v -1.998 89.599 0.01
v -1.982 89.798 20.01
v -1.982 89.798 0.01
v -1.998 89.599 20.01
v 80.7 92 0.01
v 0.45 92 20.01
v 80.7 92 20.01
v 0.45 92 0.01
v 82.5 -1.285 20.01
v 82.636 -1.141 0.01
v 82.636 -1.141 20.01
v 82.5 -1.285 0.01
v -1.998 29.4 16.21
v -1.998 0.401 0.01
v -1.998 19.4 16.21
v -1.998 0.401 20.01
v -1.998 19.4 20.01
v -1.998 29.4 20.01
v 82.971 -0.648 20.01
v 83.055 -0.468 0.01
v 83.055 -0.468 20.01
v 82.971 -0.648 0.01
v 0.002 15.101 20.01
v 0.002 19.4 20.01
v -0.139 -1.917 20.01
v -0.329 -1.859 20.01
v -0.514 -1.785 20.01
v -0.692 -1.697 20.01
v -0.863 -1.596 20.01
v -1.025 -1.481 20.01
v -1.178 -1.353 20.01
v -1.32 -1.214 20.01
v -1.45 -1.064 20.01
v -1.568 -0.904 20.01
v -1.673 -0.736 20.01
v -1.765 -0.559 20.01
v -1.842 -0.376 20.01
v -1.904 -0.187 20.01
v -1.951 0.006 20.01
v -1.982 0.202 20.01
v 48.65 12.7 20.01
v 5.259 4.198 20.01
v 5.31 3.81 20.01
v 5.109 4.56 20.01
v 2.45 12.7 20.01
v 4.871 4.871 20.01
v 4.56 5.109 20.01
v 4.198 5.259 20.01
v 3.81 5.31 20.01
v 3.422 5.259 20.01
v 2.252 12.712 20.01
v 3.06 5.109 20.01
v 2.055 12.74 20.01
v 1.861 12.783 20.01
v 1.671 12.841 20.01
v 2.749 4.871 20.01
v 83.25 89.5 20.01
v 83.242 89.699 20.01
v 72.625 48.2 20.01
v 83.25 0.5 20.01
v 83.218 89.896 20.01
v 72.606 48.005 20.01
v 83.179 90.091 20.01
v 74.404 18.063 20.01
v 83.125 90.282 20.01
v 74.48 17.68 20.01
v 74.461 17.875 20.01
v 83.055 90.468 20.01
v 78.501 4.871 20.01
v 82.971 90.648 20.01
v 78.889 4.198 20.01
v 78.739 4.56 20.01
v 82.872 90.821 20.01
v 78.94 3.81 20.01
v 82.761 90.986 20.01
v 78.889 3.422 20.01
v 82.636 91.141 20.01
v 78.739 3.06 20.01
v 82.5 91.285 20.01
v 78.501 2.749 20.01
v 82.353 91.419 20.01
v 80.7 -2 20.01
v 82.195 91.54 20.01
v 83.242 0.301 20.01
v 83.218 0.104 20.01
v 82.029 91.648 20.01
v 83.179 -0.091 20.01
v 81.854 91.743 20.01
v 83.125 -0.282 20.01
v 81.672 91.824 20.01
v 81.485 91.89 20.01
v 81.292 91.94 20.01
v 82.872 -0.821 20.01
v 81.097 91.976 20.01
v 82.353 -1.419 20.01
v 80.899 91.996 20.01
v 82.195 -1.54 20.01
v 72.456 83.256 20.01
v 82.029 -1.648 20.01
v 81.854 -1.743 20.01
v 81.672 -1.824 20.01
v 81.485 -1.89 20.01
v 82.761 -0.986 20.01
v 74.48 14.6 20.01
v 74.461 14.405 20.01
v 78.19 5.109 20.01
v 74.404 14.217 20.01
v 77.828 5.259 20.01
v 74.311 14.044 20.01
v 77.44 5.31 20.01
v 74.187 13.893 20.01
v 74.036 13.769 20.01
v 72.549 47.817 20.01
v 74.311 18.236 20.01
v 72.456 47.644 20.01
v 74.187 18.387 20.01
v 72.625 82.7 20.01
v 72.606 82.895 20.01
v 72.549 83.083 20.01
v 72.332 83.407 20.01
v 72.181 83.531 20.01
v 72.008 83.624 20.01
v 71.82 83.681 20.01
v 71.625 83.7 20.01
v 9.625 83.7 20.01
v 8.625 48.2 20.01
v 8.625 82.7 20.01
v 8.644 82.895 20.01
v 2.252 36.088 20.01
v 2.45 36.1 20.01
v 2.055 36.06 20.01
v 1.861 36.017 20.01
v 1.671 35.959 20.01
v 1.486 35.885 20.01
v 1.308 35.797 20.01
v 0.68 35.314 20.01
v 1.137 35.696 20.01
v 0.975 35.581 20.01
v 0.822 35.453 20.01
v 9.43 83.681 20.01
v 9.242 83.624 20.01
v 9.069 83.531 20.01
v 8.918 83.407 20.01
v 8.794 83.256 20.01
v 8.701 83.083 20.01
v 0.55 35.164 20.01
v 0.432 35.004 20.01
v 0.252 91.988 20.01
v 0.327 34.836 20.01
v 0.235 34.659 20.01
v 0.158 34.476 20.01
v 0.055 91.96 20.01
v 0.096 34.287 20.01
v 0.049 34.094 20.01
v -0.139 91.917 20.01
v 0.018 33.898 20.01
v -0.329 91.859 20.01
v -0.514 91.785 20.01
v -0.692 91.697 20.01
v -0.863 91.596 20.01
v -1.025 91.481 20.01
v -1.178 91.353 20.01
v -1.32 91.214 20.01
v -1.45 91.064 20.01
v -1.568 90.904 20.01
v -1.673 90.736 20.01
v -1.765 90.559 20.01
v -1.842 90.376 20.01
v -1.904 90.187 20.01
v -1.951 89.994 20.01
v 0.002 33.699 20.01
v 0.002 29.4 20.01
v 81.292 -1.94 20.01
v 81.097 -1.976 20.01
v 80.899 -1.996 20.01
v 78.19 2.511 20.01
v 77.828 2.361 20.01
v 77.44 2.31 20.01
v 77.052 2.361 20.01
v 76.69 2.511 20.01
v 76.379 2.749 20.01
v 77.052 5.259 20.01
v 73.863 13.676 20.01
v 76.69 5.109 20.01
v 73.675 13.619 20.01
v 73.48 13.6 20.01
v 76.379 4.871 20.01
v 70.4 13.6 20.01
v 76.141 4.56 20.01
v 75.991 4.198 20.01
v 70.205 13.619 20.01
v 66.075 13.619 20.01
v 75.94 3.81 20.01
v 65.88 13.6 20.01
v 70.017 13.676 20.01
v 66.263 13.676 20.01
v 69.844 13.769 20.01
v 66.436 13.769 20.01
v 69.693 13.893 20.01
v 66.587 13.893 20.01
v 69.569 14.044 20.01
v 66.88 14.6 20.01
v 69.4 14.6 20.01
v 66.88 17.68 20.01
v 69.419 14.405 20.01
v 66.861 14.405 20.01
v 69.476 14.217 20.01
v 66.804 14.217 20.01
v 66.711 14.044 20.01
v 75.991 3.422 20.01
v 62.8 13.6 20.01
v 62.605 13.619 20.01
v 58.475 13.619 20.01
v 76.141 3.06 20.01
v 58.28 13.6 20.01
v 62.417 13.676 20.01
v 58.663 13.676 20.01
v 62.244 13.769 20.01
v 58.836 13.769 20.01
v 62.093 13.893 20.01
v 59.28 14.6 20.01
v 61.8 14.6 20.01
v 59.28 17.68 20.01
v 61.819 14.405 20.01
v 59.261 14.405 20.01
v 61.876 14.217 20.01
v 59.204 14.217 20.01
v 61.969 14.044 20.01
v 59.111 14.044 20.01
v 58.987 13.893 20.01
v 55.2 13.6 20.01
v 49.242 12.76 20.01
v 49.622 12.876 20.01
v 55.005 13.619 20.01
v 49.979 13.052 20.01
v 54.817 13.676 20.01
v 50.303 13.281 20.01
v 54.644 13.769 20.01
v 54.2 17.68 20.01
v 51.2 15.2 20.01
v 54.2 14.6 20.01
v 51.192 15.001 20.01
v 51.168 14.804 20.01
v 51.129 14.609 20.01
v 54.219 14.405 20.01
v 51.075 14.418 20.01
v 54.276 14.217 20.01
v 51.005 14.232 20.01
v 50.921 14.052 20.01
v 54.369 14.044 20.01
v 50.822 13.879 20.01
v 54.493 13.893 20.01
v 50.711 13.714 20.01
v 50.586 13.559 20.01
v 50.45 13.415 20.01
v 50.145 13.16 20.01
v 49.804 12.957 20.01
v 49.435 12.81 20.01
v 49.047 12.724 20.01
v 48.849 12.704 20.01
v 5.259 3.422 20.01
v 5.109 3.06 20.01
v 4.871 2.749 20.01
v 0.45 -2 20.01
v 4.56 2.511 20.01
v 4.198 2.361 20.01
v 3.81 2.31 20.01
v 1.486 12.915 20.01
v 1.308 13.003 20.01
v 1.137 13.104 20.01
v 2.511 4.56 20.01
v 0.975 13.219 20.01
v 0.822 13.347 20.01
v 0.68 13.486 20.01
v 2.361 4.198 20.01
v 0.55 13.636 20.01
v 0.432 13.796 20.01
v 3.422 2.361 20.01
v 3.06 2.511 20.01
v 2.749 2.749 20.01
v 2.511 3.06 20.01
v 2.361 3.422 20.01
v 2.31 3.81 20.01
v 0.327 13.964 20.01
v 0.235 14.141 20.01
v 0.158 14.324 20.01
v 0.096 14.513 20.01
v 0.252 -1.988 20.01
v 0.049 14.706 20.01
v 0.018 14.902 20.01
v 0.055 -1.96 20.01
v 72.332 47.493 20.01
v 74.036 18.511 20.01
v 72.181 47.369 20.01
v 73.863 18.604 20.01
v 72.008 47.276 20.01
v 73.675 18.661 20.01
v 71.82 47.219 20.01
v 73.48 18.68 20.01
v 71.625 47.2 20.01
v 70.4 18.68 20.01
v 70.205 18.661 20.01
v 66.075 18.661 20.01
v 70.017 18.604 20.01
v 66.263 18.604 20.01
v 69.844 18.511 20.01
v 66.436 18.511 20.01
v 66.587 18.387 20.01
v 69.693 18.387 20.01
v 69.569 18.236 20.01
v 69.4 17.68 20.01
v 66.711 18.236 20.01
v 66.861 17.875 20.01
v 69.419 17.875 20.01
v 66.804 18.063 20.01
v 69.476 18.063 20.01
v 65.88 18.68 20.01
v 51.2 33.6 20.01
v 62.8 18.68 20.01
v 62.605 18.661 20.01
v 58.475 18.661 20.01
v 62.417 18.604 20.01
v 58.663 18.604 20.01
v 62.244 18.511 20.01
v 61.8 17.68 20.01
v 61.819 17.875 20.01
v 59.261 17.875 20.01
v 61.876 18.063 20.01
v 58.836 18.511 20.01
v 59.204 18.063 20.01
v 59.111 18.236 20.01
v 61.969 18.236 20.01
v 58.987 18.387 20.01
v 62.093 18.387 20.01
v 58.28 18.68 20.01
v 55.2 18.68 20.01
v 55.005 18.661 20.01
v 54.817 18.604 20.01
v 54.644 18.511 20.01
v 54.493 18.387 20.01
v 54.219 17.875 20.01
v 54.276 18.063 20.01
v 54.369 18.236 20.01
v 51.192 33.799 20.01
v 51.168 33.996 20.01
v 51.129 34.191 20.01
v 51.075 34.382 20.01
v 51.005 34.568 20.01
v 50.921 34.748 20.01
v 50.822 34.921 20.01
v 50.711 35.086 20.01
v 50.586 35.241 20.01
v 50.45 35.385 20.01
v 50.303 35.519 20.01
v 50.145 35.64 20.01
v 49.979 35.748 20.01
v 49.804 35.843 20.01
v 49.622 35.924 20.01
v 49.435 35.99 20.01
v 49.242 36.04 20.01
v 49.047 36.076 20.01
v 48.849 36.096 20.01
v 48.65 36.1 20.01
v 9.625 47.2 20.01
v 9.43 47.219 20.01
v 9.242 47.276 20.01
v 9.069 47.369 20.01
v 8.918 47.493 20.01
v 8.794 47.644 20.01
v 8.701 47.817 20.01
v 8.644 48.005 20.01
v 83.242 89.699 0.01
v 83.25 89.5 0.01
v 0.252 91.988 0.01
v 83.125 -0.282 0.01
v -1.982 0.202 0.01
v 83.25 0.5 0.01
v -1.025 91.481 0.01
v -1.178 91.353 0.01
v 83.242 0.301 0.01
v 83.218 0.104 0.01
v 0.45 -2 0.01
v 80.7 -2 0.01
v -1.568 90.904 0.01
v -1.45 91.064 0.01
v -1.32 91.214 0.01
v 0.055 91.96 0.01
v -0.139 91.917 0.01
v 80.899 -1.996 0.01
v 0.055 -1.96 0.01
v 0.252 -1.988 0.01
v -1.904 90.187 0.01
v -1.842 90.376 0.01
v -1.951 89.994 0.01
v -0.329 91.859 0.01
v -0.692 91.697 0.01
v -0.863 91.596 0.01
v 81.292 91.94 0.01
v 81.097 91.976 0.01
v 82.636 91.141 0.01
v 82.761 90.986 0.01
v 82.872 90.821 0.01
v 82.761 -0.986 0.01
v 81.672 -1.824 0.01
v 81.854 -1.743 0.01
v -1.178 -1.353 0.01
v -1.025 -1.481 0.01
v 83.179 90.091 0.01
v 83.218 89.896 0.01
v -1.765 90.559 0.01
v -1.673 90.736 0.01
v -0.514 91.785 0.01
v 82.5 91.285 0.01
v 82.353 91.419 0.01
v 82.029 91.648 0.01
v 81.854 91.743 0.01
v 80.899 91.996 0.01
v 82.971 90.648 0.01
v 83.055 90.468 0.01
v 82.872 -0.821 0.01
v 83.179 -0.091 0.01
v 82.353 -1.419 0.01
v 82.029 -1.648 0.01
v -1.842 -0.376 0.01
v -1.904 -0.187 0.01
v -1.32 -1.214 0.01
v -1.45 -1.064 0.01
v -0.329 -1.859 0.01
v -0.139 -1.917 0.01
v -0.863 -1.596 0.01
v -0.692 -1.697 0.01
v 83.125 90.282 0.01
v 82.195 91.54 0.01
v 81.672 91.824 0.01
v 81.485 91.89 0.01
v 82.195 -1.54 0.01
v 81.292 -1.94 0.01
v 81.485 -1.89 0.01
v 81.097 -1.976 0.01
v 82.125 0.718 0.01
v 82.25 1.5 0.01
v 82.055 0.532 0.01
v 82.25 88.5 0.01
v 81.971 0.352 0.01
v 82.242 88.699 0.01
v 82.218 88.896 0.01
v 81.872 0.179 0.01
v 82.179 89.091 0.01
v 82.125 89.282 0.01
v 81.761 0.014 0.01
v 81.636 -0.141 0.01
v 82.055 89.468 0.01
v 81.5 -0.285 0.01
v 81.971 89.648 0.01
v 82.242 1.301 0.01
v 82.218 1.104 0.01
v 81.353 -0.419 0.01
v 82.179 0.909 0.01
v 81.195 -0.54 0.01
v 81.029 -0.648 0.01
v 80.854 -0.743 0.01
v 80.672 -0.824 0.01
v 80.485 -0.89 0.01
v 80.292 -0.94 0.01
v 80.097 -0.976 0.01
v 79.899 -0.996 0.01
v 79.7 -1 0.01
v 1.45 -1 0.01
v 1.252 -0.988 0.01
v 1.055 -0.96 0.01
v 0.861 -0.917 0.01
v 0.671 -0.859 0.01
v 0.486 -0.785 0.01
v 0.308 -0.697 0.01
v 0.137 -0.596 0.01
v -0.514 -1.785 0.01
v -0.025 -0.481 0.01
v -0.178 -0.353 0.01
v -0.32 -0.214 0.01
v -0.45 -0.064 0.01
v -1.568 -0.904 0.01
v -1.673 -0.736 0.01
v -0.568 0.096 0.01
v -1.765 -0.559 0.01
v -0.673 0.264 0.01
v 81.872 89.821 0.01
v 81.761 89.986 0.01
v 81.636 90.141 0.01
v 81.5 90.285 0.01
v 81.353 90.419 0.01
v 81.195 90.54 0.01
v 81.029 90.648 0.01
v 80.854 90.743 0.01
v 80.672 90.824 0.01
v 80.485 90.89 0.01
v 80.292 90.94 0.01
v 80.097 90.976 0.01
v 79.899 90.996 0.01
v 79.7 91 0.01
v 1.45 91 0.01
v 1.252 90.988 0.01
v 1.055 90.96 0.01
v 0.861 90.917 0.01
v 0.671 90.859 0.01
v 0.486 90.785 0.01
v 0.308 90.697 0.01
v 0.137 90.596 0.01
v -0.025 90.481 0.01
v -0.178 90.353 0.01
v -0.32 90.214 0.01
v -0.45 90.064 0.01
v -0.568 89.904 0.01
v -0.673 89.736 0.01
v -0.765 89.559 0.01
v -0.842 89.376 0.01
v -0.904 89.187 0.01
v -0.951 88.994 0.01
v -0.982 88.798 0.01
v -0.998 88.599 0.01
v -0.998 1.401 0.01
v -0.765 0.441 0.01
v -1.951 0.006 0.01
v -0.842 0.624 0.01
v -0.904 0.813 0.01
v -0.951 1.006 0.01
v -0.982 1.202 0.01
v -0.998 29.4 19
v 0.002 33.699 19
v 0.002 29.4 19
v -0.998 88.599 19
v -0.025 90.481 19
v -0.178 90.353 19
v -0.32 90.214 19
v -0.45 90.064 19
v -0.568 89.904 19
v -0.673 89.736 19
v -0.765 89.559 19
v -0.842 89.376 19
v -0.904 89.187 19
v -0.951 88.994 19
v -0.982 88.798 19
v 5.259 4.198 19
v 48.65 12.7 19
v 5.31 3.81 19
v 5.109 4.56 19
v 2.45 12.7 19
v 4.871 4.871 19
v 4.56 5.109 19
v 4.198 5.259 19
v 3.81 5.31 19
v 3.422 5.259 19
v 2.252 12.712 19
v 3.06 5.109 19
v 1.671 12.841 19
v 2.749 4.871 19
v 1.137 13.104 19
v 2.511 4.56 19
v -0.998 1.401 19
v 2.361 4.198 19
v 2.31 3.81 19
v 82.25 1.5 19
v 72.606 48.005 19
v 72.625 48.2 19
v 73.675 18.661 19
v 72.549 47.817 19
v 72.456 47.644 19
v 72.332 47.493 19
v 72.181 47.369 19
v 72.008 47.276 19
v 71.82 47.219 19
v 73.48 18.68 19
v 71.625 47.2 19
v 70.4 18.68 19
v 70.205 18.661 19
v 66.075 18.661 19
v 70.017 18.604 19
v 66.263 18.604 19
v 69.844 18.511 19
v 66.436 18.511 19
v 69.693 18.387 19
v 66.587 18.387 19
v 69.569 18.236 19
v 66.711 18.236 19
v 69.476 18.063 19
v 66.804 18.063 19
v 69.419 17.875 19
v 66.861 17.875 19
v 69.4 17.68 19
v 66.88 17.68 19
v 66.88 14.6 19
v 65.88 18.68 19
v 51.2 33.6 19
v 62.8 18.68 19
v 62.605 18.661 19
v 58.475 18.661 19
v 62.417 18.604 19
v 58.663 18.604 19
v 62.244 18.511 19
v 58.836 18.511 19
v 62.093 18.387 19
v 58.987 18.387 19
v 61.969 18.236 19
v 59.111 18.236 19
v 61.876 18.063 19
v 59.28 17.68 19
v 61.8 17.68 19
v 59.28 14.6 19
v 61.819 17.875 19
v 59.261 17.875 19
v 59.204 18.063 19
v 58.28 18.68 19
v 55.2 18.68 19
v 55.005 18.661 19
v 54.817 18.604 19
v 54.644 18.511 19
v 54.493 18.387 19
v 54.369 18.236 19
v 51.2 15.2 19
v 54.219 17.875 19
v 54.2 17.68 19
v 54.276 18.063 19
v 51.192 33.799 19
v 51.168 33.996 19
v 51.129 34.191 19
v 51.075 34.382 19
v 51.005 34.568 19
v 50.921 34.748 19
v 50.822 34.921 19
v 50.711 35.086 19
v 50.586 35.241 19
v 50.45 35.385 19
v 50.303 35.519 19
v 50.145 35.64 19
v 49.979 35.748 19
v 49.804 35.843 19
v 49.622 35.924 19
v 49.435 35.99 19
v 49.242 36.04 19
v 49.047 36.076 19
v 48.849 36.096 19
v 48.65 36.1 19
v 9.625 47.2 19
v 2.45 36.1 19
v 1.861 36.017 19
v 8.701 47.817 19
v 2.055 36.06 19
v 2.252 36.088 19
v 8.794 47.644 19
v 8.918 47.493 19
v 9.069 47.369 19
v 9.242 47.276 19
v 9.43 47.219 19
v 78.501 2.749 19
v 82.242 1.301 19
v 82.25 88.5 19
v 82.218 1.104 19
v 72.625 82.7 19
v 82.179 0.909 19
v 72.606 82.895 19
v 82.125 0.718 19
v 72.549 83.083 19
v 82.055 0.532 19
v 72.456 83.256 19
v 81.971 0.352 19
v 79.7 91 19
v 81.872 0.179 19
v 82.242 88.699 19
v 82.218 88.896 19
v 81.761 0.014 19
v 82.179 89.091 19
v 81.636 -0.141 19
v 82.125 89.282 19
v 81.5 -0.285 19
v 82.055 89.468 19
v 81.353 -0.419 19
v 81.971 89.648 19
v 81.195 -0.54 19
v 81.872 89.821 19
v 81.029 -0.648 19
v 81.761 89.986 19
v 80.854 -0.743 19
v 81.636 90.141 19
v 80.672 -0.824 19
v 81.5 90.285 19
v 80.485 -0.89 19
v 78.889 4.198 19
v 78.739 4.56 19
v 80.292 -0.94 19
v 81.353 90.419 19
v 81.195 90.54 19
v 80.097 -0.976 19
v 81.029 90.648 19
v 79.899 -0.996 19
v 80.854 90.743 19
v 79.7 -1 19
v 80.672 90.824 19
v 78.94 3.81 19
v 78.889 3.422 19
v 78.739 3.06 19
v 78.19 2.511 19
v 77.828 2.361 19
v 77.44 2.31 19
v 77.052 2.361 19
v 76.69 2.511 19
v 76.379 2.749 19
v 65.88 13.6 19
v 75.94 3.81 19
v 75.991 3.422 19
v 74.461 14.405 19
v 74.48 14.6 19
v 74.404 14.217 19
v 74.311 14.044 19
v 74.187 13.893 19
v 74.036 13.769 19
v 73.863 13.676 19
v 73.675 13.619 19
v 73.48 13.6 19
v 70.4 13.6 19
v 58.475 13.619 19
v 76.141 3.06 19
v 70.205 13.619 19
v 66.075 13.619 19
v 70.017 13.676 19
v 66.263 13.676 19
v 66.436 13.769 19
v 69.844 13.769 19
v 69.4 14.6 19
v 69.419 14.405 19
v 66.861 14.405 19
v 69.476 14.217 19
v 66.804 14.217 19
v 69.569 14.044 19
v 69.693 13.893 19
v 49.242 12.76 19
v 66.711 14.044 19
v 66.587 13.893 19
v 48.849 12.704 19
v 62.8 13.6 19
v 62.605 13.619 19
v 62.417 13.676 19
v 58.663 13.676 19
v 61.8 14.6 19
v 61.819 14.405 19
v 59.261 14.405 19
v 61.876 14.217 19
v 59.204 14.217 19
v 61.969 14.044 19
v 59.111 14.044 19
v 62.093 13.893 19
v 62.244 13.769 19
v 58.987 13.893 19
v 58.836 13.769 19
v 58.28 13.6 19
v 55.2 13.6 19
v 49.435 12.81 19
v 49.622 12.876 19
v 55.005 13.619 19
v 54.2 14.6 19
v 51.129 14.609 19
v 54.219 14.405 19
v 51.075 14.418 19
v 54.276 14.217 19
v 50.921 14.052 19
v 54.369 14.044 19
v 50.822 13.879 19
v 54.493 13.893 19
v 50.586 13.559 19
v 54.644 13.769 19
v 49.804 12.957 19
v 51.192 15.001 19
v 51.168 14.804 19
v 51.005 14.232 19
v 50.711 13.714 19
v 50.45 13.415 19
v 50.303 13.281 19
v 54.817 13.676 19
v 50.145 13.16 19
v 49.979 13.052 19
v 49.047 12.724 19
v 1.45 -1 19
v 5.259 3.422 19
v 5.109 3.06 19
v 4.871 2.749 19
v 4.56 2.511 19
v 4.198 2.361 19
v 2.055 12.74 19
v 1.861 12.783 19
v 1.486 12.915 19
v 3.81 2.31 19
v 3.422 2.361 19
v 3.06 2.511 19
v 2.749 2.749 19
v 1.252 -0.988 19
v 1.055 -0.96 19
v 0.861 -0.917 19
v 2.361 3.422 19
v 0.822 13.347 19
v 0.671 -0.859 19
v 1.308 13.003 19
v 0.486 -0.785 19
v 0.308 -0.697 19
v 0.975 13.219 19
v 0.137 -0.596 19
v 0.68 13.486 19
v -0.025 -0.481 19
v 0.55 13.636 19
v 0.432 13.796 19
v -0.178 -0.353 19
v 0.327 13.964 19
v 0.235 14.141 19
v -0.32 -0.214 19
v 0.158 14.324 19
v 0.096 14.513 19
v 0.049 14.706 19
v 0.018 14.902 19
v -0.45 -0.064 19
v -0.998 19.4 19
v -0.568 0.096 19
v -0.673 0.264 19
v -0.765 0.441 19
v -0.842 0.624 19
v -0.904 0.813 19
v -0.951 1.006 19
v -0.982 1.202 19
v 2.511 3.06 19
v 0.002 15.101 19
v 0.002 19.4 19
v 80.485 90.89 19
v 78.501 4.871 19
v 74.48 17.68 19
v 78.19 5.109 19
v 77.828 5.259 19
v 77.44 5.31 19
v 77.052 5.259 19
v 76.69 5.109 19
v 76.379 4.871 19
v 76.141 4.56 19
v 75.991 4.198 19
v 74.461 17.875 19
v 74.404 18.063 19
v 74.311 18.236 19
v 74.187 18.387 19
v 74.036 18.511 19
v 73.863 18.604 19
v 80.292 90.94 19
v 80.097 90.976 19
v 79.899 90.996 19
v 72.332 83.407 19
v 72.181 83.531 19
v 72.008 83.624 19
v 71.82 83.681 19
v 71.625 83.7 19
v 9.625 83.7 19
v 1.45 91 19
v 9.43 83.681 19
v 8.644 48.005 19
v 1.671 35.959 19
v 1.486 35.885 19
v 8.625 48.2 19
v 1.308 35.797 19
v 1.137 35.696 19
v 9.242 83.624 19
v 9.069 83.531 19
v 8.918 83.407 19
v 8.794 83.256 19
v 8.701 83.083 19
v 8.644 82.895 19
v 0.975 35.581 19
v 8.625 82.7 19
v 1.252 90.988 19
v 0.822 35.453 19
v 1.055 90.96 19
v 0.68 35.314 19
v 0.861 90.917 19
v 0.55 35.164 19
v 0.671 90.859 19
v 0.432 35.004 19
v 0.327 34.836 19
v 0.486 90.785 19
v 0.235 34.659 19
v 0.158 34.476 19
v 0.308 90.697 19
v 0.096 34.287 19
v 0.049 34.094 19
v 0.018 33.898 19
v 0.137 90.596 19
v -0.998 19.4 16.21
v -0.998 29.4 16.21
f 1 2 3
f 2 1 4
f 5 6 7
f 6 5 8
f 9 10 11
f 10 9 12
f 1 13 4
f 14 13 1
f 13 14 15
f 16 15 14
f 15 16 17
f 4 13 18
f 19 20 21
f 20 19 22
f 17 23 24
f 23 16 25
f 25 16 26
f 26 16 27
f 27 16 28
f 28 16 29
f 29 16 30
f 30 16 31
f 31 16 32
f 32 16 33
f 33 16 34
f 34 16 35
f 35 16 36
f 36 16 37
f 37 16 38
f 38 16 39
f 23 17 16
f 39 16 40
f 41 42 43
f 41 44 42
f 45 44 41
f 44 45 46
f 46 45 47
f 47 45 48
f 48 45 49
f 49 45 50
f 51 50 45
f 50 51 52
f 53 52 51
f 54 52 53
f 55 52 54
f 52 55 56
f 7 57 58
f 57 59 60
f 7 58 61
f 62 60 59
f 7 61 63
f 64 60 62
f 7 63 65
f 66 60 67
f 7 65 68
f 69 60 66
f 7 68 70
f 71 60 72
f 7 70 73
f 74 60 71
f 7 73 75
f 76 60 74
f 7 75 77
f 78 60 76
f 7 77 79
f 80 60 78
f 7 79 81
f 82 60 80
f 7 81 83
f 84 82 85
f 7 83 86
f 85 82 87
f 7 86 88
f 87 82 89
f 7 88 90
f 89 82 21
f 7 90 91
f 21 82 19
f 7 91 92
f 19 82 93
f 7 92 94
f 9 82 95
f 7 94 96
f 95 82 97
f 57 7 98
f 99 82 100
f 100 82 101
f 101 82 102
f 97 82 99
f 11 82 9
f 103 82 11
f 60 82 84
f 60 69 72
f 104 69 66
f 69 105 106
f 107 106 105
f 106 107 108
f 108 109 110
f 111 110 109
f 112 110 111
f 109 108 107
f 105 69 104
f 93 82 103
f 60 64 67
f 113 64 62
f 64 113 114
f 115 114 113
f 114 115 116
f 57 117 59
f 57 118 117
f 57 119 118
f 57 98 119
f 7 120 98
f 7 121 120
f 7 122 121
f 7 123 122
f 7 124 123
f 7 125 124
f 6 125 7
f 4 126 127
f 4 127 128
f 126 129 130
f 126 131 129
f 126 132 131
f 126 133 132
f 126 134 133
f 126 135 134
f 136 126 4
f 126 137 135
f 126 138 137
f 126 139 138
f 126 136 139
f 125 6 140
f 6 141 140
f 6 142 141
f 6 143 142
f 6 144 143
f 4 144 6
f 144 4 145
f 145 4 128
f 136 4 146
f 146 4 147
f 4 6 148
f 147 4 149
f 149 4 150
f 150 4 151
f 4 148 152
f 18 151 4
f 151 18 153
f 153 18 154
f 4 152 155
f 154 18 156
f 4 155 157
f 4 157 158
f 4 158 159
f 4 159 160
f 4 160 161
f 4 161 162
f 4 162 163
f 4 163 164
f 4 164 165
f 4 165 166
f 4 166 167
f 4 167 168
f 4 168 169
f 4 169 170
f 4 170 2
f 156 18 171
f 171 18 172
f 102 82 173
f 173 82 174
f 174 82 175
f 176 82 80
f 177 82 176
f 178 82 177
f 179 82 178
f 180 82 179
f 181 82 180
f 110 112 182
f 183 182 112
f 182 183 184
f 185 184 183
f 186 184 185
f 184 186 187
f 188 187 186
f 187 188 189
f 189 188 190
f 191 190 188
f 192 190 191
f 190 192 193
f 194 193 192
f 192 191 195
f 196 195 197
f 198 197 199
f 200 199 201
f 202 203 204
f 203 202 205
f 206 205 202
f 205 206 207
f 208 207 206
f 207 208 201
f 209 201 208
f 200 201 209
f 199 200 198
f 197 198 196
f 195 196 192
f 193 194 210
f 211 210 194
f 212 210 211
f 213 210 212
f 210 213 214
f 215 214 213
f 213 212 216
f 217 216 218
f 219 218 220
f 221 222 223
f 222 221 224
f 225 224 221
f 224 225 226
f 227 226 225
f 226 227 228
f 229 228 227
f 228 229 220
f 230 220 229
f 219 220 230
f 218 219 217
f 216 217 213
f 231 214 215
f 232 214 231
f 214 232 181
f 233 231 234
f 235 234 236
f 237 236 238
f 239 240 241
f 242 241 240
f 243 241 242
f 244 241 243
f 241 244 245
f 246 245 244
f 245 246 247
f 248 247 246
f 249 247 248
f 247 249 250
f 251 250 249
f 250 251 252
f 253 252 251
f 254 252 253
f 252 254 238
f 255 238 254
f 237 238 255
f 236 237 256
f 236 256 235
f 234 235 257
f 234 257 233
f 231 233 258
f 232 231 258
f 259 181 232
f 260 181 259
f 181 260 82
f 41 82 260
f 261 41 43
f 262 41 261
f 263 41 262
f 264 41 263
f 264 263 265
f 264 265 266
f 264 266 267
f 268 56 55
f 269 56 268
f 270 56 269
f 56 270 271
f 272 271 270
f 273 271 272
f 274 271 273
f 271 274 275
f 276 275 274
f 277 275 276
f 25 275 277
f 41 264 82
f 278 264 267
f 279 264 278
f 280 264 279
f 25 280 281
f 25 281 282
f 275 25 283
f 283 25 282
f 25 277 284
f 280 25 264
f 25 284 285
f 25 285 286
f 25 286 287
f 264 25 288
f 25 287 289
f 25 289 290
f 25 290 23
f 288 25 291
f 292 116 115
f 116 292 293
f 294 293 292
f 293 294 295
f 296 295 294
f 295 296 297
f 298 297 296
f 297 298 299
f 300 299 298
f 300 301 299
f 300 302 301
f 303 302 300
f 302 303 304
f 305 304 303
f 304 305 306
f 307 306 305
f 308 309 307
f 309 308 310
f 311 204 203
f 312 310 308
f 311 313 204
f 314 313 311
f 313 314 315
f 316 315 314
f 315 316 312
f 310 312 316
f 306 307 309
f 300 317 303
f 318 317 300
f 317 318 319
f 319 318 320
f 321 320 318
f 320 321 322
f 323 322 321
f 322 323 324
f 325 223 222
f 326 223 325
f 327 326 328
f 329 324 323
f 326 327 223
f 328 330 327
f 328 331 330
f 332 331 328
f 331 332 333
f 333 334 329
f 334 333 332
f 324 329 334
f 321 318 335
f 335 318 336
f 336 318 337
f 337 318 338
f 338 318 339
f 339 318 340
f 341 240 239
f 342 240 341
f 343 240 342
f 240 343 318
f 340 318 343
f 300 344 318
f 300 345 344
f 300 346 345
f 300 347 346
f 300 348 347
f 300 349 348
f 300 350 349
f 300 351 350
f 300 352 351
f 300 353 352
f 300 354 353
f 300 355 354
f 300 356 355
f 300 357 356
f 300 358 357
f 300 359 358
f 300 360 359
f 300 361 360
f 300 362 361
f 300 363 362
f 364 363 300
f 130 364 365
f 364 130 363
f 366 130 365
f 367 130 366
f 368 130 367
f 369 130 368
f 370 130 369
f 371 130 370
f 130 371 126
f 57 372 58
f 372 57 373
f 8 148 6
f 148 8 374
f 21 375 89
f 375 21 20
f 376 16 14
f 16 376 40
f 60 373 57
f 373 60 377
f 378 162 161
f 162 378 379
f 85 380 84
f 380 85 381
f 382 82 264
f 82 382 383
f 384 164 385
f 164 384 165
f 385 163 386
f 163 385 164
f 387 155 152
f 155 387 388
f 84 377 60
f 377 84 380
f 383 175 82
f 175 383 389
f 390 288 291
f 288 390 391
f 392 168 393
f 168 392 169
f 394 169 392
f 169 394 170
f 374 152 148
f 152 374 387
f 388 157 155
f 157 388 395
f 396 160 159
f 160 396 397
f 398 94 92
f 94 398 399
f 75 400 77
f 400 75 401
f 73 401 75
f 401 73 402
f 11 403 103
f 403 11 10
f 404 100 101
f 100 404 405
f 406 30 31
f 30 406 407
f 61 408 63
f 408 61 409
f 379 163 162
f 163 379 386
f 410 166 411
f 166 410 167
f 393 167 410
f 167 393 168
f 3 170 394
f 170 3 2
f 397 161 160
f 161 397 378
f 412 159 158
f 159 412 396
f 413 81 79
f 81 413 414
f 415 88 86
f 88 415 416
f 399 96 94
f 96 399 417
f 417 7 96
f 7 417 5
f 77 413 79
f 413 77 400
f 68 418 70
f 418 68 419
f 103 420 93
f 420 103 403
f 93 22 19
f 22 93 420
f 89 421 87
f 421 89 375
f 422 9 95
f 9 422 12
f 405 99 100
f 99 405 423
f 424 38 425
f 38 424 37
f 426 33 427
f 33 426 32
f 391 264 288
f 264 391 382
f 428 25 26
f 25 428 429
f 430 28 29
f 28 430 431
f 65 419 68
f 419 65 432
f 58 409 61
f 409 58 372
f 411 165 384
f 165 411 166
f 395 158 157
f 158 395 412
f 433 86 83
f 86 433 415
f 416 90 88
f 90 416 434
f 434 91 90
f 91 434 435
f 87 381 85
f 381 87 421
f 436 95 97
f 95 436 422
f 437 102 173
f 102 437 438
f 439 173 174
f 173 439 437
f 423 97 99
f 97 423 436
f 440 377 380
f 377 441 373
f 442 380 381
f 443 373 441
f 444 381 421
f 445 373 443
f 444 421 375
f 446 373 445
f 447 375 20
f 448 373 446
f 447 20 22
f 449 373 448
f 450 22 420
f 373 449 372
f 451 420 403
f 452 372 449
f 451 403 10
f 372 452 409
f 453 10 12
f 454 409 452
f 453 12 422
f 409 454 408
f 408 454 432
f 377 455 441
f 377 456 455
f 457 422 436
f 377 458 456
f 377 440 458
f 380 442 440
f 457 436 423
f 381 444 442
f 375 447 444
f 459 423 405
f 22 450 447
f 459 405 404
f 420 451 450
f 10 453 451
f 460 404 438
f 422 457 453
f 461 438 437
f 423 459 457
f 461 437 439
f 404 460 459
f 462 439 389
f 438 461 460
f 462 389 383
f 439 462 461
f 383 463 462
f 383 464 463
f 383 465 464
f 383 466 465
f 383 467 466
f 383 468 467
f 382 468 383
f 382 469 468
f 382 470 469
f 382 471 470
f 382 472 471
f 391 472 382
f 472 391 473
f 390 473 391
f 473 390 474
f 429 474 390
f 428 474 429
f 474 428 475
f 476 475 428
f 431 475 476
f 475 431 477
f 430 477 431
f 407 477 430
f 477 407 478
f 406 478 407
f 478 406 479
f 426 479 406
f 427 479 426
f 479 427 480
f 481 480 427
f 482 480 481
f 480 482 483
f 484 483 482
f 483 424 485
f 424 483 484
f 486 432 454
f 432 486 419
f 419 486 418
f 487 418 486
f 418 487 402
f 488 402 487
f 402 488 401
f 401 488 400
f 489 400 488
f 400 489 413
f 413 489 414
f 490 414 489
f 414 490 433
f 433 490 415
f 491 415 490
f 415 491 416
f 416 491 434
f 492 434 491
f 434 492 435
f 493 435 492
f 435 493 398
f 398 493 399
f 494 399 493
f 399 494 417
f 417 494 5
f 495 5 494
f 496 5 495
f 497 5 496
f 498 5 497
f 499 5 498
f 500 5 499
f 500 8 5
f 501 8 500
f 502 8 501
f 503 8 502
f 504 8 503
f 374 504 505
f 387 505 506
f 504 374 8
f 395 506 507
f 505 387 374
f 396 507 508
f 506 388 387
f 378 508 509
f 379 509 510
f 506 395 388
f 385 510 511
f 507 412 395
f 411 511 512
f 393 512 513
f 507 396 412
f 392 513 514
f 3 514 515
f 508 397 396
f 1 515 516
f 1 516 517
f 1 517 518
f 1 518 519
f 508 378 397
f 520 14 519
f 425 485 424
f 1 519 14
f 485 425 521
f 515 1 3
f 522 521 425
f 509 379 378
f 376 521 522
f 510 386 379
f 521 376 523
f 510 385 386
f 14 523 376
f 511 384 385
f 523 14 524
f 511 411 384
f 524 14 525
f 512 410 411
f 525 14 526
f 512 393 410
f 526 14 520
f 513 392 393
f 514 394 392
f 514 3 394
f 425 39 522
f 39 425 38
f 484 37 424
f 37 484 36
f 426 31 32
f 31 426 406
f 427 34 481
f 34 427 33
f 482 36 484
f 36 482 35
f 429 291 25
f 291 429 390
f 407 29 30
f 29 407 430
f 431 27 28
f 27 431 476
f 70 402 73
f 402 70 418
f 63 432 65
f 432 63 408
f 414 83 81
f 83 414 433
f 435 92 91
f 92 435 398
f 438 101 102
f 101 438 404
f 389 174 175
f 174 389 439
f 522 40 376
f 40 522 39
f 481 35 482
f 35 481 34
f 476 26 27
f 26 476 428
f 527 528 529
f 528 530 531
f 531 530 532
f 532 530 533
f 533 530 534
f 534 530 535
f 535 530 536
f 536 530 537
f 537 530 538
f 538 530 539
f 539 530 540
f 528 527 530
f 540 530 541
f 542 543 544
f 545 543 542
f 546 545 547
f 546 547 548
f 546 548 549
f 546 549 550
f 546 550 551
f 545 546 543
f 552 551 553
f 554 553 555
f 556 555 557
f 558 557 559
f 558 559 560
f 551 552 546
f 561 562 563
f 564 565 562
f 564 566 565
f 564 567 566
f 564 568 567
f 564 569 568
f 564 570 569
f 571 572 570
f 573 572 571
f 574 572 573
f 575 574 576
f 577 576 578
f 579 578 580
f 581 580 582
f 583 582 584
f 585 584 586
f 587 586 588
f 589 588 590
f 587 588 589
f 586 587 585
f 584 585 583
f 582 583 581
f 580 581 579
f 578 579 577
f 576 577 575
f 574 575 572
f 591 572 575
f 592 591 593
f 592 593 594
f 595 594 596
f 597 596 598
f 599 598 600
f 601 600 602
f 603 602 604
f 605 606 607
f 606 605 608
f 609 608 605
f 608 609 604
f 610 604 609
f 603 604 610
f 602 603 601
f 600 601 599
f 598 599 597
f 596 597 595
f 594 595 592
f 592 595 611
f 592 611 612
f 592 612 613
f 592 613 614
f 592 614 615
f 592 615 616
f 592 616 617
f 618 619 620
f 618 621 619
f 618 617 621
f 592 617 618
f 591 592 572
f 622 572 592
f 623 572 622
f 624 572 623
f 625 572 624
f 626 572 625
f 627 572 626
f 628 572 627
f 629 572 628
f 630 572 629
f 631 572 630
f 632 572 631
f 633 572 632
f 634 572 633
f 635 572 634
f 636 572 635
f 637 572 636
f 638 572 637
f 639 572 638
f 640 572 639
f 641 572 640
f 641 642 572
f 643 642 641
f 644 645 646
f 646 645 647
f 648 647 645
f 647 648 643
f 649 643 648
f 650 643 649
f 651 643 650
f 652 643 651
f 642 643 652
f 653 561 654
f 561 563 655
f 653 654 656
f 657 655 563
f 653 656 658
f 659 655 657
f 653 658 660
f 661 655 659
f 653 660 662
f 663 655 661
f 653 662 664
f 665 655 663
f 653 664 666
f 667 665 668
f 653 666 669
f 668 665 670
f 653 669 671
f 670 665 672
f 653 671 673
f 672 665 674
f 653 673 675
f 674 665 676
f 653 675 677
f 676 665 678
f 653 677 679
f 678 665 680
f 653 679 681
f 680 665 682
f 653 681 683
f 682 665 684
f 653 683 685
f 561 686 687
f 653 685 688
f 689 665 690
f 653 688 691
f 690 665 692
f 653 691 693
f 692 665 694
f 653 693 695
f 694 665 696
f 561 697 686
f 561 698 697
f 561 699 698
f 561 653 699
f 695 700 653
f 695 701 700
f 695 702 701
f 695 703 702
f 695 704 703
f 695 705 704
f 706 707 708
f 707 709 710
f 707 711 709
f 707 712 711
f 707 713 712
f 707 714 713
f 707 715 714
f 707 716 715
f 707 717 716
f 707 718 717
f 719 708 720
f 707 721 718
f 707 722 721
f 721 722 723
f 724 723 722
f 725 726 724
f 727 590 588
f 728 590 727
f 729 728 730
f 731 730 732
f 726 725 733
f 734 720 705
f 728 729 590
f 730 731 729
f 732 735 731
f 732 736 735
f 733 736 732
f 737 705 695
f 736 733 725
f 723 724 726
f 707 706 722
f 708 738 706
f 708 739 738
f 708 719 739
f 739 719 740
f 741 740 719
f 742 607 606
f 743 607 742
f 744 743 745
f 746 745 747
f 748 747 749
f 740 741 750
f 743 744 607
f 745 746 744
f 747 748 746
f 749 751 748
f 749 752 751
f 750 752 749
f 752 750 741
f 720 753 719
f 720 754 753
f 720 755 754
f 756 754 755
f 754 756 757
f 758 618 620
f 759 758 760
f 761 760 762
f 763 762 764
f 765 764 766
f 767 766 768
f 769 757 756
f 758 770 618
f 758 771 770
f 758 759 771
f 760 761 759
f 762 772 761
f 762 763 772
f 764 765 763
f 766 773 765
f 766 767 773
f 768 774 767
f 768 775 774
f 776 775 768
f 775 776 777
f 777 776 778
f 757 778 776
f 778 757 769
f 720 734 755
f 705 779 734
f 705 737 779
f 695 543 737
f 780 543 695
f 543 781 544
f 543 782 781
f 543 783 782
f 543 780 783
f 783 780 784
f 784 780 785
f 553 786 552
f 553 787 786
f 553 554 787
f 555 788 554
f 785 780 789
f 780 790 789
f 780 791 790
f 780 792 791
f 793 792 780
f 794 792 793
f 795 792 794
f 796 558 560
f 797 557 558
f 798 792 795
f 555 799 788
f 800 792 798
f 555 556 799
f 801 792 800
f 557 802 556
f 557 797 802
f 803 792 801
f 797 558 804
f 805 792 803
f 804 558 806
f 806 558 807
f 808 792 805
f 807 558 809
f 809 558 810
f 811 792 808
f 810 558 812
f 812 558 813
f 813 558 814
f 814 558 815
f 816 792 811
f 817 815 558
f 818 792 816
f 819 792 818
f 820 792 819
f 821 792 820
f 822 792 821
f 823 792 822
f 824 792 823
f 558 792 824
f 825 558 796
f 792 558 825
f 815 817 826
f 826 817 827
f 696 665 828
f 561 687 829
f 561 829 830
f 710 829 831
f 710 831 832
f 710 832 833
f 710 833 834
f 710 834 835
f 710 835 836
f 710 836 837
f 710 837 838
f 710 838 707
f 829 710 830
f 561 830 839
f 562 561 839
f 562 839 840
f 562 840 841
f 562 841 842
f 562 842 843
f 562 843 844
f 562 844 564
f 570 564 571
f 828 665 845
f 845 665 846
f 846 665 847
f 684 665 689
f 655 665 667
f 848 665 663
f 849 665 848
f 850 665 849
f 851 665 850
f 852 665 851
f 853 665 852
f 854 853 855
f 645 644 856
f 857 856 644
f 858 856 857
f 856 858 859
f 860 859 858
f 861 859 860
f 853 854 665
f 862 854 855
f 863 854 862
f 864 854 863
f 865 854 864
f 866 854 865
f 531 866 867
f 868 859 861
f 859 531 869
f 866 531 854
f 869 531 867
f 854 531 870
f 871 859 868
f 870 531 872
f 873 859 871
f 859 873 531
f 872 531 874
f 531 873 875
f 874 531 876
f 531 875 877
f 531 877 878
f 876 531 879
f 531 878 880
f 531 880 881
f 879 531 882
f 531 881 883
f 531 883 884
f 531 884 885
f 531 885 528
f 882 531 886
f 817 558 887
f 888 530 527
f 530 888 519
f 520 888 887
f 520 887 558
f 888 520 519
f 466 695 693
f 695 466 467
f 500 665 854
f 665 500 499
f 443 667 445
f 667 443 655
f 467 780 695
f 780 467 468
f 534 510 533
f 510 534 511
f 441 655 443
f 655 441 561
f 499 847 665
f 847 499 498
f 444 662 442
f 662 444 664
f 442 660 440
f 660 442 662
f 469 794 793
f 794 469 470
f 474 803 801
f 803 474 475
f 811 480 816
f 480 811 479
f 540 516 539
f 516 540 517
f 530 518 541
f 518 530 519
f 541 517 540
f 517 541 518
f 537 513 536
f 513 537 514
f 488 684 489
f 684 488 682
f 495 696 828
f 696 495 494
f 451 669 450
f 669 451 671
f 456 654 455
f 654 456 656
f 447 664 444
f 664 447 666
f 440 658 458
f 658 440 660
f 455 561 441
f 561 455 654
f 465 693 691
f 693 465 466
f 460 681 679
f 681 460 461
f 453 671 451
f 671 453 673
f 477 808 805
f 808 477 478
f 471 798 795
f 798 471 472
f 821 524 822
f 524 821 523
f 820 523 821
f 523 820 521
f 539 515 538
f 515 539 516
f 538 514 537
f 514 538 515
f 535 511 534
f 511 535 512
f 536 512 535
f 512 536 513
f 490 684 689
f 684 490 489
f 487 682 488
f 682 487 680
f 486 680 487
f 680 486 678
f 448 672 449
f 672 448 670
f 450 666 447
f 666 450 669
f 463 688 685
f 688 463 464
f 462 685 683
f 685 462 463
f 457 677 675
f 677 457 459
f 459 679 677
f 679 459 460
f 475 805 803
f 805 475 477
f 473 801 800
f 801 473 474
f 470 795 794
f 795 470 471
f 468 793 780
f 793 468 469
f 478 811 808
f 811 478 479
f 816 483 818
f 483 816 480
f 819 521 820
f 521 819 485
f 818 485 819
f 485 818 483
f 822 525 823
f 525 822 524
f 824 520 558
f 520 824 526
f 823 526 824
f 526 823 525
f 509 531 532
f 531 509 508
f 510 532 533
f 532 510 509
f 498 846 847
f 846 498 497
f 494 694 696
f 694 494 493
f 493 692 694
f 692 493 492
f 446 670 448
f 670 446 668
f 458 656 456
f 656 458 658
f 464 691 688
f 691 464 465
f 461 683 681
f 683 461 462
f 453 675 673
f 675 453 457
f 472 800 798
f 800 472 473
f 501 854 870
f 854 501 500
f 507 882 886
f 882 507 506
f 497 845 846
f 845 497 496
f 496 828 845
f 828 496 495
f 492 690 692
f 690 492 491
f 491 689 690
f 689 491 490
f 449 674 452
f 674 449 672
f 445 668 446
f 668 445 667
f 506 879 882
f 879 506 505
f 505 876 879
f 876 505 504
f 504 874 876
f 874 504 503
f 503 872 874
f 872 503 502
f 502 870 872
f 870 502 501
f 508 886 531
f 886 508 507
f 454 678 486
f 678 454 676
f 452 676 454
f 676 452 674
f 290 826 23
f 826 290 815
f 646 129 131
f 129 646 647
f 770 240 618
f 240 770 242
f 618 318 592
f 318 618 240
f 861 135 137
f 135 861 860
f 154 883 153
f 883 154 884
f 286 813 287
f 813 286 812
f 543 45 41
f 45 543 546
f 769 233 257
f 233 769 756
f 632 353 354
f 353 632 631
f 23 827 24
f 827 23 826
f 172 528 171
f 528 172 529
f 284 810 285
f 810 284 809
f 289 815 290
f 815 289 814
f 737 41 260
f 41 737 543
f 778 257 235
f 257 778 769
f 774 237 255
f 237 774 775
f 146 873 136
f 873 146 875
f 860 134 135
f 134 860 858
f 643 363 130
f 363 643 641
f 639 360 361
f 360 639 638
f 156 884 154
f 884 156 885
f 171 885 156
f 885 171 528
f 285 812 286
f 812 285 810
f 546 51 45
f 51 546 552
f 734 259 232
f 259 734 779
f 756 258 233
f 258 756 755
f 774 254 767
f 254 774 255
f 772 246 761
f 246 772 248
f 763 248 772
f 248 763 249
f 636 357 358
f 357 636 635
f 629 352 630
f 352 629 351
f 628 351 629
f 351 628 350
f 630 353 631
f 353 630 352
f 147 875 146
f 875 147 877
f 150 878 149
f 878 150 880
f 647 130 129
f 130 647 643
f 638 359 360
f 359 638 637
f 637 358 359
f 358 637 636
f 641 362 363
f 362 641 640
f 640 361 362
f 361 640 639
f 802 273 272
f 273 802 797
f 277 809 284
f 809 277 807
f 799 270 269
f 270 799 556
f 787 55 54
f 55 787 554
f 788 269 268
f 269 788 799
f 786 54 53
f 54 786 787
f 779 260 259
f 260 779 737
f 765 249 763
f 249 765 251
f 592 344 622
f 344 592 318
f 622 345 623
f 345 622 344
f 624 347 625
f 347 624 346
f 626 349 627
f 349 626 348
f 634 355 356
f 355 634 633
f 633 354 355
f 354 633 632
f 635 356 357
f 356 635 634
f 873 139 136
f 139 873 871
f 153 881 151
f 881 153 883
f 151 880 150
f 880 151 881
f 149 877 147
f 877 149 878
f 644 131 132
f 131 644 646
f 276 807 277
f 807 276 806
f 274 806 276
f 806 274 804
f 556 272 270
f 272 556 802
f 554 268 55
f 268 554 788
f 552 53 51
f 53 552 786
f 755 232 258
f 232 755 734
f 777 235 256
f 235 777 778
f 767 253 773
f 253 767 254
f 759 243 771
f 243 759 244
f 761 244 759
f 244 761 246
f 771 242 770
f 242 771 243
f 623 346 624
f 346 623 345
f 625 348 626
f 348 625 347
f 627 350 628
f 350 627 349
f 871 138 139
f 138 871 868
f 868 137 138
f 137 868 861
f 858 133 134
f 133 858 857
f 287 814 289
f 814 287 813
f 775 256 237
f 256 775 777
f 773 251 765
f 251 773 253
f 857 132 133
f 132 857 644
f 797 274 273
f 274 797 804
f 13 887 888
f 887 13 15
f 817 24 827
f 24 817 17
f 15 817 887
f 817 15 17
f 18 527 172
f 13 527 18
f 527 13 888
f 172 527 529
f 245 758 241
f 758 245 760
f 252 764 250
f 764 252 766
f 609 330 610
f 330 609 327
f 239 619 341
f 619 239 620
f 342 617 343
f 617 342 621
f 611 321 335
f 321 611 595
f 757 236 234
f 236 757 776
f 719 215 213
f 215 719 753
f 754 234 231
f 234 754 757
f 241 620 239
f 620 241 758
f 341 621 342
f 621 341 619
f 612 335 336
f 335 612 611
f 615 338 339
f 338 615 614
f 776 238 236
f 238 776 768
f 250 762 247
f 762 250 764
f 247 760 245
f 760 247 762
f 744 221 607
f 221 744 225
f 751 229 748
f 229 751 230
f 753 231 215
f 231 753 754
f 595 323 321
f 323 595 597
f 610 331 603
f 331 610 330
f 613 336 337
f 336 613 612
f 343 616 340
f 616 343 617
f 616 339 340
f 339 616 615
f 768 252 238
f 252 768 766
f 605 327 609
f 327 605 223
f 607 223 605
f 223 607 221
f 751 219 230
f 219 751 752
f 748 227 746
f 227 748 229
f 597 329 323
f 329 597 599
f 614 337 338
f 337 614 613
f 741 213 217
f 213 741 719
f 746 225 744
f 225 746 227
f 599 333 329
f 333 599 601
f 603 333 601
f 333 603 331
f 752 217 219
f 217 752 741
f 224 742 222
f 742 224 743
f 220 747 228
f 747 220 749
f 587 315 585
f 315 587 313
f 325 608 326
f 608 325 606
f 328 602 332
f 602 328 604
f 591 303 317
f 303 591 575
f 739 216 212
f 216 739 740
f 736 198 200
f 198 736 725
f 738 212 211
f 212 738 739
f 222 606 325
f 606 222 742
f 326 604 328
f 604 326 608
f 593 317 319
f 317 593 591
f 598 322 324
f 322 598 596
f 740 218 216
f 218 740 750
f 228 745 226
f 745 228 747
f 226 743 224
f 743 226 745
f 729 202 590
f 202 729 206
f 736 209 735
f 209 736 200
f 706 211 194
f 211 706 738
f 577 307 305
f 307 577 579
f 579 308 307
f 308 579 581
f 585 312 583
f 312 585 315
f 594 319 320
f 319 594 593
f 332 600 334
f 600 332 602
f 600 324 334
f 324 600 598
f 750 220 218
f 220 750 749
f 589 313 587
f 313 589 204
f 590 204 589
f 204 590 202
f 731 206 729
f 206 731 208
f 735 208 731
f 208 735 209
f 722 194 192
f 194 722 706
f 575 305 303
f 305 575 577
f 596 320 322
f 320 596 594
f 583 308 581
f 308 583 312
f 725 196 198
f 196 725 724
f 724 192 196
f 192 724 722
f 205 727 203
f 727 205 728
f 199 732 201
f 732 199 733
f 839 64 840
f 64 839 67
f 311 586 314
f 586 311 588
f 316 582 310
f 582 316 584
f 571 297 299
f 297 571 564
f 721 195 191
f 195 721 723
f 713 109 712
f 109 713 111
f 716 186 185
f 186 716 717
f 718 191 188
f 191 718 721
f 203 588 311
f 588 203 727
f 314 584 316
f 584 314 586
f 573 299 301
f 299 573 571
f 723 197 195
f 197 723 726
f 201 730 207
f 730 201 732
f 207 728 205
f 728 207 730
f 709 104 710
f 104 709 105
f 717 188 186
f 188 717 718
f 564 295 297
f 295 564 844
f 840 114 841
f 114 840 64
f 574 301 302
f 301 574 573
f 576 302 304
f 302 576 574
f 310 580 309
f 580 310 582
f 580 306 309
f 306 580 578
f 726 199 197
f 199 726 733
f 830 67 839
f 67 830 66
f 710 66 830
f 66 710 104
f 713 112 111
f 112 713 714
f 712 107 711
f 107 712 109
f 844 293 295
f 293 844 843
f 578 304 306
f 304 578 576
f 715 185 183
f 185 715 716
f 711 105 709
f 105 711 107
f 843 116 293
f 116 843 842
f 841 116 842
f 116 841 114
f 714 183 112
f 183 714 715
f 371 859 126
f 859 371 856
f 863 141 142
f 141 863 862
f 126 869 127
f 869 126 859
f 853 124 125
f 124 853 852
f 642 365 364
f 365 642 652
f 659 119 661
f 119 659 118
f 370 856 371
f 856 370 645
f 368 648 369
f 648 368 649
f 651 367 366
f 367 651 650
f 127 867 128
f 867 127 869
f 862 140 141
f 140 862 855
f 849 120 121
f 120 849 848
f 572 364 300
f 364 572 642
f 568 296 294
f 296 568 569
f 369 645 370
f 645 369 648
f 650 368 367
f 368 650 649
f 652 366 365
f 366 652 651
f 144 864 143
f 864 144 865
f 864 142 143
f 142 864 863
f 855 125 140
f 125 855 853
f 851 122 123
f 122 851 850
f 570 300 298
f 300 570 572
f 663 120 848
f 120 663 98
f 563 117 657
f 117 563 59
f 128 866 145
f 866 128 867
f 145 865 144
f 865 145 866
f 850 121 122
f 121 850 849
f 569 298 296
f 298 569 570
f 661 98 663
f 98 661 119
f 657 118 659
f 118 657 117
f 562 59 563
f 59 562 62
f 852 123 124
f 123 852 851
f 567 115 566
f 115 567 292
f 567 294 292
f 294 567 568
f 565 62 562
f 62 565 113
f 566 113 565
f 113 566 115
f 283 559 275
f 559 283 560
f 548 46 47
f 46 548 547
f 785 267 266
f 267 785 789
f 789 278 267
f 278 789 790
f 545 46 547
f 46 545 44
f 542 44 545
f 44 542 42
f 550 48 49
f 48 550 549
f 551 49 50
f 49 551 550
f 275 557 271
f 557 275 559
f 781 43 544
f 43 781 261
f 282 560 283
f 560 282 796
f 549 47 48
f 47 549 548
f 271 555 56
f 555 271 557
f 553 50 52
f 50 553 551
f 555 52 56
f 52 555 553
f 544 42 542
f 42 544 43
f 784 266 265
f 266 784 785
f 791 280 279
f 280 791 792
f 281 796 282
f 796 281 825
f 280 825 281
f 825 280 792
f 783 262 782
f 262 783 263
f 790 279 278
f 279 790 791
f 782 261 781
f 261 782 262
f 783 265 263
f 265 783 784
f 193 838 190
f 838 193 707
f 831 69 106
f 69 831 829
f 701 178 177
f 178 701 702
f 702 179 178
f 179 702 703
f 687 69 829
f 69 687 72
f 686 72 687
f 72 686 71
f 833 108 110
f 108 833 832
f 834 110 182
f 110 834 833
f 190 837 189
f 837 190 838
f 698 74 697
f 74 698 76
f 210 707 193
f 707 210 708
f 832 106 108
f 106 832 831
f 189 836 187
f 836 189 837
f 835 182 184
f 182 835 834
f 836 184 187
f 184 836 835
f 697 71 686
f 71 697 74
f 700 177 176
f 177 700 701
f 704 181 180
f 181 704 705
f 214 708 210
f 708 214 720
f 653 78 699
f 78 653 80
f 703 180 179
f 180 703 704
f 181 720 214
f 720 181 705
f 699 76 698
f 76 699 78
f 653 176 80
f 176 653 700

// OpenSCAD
// file: MODULES/roundedcube.scad
// Original source: https://danielupshaw.com/openscad-rounded-corners/

// use this for working
$fs = 0.2;
// use the for rendering
// $fs = 0.02;

module roundedcube(size = [1, 1, 1], center = false, radius = 0.5, apply_to = "all") {
	// If single value, convert to [x, y, z] vector
	size = (size[0] == undef) ? [size, size, size] : size;

	translate_min = radius;
	translate_xmax = size[0] - radius;
	translate_ymax = size[1] - radius;
	translate_zmax = size[2] - radius;

	diameter = radius * 2;

	module build_point(type = "sphere", rotate = [0, 0, 0]) {
		if (type == "sphere") {
			sphere(r = radius);
		} else if (type == "cylinder") {
			rotate(a = rotate)
			cylinder(h = diameter, r = radius, center = true);
		}
	}

	obj_translate = (center == false) ?
		[0, 0, 0] : [
			-(size[0] / 2),
			-(size[1] / 2),
			-(size[2] / 2)
		];

	translate(v = obj_translate) {
		hull() {
			for (translate_x = [translate_min, translate_xmax]) {
				x_at = (translate_x == translate_min) ? "min" : "max";
				for (translate_y = [translate_min, translate_ymax]) {
					y_at = (translate_y == translate_min) ? "min" : "max";
					for (translate_z = [translate_min, translate_zmax]) {
						z_at = (translate_z == translate_min) ? "min" : "max";

						translate(v = [translate_x, translate_y, translate_z])
						if (
							(apply_to == "all") ||
							(apply_to == "xmin" && x_at == "min") || (apply_to == "xmax" && x_at == "max") ||
							(apply_to == "ymin" && y_at == "min") || (apply_to == "ymax" && y_at == "max") ||
							(apply_to == "zmin" && z_at == "min") || (apply_to == "zmax" && z_at == "max")
						) {
							build_point("sphere");
						} else {
							rotate = 
								(apply_to == "xmin" || apply_to == "xmax" || apply_to == "x") ? [0, 90, 0] : (
								(apply_to == "ymin" || apply_to == "ymax" || apply_to == "y") ? [90, 90, 0] :
								[0, 0, 0]
							);
							build_point("cylinder", rotate);
						}
					}
				}
			}
		}
	}
}

module shull_cube(size = [1, 1, 1], center = false, radius = 0, apply_to = "all") {
    if (radius == 0) {
        cube(size, center);
    } else {
        roundedcube(size, center, radius, apply_to);
    }
}
// main file
// Electronics Enclosure OpenSCAD Template
//  By Carsten Thue-Bludworth

use <MODULES/roundedcube.scad>;

// Global configuration
$fa = 1;
$fs = 0.4;
// Amount of offset to help OpenSCAD with unions and diffs
_DELTA = 0.01;
// The amount of space between the PCB edge and the inner wall of enclosure
MARGIN = 1;
// The thickness of the enclosure wall
WALL_THICKNESS = 1;
// Dimensions of the PCB
PCB_X = 81.25;
ENC_X_INNER = PCB_X + 2*MARGIN;
ENC_X_OUTER = PCB_X + 2*(MARGIN + WALL_THICKNESS);
PCB_Y = 90;
ENC_Y_INNER = PCB_Y + 2*MARGIN;
ENC_Y_OUTER = PCB_Y + 2*(MARGIN + WALL_THICKNESS);
PCB_Z = 20;
PCB_RADIUS = 2.5;

// Enclosure body
module body() {
    difference() {
        translate([-(MARGIN + WALL_THICKNESS), -(MARGIN + WALL_THICKNESS), _DELTA])
            roundedcube([ENC_X_OUTER, ENC_Y_OUTER, PCB_Z], radius=PCB_RADIUS, apply_to="z");
        translate([-MARGIN, -MARGIN, 0])
            roundedcube([ENC_X_INNER, ENC_Y_INNER, PCB_Z-WALL_THICKNESS], radius=PCB_RADIUS, apply_to="z");
    }
}

// Top cutouts
//  This is for the stackable featherwing
//  TODO: make sure this is right
feather_x_offset = 0;
feather_y_offset = 12.7;
feather_x        = 51.2;
feather_y        = 23.4;
feather_r        = 2.5;
//  For the 3 buttons
button1_x_offset = 54.2;
button1_y_offset = 13.6;
button1_x        = 5.08;
button1_y        = 5.08;
button2_x_offset = 61.8;
button2_y_offset = 13.6;
button2_x        = 5.08;
button2_y        = 5.08;
button3_x_offset = 69.4;
button3_y_offset = 13.6;
button3_x        = 5.08;
button3_y        = 5.08;
button_r         = 1;
//  For the LCD
lcd_x            = 64;
lcd_y            = 36.5;
lcd_x_offset     = (PCB_X - lcd_x)/2;
lcd_y_offset     = 47.2;

module top_cutout(x_off=0, y_off=0, x=1, y=1, _radius=0) {
    translate([x_off, y_off, PCB_Z-WALL_THICKNESS-_DELTA])
        if (_radius == 0) {
            cube([x, y, WALL_THICKNESS+(3*_DELTA)]);
        } else {
            roundedcube([x, y, WALL_THICKNESS+(3*_DELTA)], radius=_radius, apply_to="z");
        }
}

// Create a cutout on the left side of width y and height h,
// offset from PCB lower left by y.
module left_cutout(y_off, y, h) {
    translate([-WALL_THICKNESS-MARGIN-_DELTA, y_off - y/2, PCB_Z - h +2*_DELTA])
        cube([WALL_THICKNESS+2*MARGIN, y, h]);
}

// Make a mounting hole with specified radius, with the center offset from
// PCB lower left by specified amount
module mounting_hole(x_center_off, y_center_off, radius=1.5) {
    translate([x_center_off, y_center_off, PCB_Z-(WALL_THICKNESS/2)-_DELTA])
        cylinder(2*WALL_THICKNESS+(2*_DELTA), r=radius, center=true);
}

// TODO: make the lower left of the PCB be at the origin,
//  offset the enclosure to quadrant 3. This way all cutout measurements
//  will be relative to PCB

// Main model
difference() {
    body();
    top_cutout(feather_x_offset, feather_y_offset, feather_x, feather_y, _radius=feather_r);
    left_cutout(feather_y_offset+(feather_y/2), 10, 3.81);
    top_cutout(button1_x_offset, button1_y_offset, button1_x, button1_y, _radius=button_r);
    top_cutout(button2_x_offset, button2_y_offset, button2_x, button2_y, _radius=button_r);
    top_cutout(button3_x_offset, button3_y_offset, button3_x, button3_y, _radius=button_r);
    top_cutout(lcd_x_offset, lcd_y_offset, lcd_x, lcd_y, _radius=1);
    mounting_hole(3.81, 3.81);
    mounting_hole(PCB_X-3.81, 3.81);
}
